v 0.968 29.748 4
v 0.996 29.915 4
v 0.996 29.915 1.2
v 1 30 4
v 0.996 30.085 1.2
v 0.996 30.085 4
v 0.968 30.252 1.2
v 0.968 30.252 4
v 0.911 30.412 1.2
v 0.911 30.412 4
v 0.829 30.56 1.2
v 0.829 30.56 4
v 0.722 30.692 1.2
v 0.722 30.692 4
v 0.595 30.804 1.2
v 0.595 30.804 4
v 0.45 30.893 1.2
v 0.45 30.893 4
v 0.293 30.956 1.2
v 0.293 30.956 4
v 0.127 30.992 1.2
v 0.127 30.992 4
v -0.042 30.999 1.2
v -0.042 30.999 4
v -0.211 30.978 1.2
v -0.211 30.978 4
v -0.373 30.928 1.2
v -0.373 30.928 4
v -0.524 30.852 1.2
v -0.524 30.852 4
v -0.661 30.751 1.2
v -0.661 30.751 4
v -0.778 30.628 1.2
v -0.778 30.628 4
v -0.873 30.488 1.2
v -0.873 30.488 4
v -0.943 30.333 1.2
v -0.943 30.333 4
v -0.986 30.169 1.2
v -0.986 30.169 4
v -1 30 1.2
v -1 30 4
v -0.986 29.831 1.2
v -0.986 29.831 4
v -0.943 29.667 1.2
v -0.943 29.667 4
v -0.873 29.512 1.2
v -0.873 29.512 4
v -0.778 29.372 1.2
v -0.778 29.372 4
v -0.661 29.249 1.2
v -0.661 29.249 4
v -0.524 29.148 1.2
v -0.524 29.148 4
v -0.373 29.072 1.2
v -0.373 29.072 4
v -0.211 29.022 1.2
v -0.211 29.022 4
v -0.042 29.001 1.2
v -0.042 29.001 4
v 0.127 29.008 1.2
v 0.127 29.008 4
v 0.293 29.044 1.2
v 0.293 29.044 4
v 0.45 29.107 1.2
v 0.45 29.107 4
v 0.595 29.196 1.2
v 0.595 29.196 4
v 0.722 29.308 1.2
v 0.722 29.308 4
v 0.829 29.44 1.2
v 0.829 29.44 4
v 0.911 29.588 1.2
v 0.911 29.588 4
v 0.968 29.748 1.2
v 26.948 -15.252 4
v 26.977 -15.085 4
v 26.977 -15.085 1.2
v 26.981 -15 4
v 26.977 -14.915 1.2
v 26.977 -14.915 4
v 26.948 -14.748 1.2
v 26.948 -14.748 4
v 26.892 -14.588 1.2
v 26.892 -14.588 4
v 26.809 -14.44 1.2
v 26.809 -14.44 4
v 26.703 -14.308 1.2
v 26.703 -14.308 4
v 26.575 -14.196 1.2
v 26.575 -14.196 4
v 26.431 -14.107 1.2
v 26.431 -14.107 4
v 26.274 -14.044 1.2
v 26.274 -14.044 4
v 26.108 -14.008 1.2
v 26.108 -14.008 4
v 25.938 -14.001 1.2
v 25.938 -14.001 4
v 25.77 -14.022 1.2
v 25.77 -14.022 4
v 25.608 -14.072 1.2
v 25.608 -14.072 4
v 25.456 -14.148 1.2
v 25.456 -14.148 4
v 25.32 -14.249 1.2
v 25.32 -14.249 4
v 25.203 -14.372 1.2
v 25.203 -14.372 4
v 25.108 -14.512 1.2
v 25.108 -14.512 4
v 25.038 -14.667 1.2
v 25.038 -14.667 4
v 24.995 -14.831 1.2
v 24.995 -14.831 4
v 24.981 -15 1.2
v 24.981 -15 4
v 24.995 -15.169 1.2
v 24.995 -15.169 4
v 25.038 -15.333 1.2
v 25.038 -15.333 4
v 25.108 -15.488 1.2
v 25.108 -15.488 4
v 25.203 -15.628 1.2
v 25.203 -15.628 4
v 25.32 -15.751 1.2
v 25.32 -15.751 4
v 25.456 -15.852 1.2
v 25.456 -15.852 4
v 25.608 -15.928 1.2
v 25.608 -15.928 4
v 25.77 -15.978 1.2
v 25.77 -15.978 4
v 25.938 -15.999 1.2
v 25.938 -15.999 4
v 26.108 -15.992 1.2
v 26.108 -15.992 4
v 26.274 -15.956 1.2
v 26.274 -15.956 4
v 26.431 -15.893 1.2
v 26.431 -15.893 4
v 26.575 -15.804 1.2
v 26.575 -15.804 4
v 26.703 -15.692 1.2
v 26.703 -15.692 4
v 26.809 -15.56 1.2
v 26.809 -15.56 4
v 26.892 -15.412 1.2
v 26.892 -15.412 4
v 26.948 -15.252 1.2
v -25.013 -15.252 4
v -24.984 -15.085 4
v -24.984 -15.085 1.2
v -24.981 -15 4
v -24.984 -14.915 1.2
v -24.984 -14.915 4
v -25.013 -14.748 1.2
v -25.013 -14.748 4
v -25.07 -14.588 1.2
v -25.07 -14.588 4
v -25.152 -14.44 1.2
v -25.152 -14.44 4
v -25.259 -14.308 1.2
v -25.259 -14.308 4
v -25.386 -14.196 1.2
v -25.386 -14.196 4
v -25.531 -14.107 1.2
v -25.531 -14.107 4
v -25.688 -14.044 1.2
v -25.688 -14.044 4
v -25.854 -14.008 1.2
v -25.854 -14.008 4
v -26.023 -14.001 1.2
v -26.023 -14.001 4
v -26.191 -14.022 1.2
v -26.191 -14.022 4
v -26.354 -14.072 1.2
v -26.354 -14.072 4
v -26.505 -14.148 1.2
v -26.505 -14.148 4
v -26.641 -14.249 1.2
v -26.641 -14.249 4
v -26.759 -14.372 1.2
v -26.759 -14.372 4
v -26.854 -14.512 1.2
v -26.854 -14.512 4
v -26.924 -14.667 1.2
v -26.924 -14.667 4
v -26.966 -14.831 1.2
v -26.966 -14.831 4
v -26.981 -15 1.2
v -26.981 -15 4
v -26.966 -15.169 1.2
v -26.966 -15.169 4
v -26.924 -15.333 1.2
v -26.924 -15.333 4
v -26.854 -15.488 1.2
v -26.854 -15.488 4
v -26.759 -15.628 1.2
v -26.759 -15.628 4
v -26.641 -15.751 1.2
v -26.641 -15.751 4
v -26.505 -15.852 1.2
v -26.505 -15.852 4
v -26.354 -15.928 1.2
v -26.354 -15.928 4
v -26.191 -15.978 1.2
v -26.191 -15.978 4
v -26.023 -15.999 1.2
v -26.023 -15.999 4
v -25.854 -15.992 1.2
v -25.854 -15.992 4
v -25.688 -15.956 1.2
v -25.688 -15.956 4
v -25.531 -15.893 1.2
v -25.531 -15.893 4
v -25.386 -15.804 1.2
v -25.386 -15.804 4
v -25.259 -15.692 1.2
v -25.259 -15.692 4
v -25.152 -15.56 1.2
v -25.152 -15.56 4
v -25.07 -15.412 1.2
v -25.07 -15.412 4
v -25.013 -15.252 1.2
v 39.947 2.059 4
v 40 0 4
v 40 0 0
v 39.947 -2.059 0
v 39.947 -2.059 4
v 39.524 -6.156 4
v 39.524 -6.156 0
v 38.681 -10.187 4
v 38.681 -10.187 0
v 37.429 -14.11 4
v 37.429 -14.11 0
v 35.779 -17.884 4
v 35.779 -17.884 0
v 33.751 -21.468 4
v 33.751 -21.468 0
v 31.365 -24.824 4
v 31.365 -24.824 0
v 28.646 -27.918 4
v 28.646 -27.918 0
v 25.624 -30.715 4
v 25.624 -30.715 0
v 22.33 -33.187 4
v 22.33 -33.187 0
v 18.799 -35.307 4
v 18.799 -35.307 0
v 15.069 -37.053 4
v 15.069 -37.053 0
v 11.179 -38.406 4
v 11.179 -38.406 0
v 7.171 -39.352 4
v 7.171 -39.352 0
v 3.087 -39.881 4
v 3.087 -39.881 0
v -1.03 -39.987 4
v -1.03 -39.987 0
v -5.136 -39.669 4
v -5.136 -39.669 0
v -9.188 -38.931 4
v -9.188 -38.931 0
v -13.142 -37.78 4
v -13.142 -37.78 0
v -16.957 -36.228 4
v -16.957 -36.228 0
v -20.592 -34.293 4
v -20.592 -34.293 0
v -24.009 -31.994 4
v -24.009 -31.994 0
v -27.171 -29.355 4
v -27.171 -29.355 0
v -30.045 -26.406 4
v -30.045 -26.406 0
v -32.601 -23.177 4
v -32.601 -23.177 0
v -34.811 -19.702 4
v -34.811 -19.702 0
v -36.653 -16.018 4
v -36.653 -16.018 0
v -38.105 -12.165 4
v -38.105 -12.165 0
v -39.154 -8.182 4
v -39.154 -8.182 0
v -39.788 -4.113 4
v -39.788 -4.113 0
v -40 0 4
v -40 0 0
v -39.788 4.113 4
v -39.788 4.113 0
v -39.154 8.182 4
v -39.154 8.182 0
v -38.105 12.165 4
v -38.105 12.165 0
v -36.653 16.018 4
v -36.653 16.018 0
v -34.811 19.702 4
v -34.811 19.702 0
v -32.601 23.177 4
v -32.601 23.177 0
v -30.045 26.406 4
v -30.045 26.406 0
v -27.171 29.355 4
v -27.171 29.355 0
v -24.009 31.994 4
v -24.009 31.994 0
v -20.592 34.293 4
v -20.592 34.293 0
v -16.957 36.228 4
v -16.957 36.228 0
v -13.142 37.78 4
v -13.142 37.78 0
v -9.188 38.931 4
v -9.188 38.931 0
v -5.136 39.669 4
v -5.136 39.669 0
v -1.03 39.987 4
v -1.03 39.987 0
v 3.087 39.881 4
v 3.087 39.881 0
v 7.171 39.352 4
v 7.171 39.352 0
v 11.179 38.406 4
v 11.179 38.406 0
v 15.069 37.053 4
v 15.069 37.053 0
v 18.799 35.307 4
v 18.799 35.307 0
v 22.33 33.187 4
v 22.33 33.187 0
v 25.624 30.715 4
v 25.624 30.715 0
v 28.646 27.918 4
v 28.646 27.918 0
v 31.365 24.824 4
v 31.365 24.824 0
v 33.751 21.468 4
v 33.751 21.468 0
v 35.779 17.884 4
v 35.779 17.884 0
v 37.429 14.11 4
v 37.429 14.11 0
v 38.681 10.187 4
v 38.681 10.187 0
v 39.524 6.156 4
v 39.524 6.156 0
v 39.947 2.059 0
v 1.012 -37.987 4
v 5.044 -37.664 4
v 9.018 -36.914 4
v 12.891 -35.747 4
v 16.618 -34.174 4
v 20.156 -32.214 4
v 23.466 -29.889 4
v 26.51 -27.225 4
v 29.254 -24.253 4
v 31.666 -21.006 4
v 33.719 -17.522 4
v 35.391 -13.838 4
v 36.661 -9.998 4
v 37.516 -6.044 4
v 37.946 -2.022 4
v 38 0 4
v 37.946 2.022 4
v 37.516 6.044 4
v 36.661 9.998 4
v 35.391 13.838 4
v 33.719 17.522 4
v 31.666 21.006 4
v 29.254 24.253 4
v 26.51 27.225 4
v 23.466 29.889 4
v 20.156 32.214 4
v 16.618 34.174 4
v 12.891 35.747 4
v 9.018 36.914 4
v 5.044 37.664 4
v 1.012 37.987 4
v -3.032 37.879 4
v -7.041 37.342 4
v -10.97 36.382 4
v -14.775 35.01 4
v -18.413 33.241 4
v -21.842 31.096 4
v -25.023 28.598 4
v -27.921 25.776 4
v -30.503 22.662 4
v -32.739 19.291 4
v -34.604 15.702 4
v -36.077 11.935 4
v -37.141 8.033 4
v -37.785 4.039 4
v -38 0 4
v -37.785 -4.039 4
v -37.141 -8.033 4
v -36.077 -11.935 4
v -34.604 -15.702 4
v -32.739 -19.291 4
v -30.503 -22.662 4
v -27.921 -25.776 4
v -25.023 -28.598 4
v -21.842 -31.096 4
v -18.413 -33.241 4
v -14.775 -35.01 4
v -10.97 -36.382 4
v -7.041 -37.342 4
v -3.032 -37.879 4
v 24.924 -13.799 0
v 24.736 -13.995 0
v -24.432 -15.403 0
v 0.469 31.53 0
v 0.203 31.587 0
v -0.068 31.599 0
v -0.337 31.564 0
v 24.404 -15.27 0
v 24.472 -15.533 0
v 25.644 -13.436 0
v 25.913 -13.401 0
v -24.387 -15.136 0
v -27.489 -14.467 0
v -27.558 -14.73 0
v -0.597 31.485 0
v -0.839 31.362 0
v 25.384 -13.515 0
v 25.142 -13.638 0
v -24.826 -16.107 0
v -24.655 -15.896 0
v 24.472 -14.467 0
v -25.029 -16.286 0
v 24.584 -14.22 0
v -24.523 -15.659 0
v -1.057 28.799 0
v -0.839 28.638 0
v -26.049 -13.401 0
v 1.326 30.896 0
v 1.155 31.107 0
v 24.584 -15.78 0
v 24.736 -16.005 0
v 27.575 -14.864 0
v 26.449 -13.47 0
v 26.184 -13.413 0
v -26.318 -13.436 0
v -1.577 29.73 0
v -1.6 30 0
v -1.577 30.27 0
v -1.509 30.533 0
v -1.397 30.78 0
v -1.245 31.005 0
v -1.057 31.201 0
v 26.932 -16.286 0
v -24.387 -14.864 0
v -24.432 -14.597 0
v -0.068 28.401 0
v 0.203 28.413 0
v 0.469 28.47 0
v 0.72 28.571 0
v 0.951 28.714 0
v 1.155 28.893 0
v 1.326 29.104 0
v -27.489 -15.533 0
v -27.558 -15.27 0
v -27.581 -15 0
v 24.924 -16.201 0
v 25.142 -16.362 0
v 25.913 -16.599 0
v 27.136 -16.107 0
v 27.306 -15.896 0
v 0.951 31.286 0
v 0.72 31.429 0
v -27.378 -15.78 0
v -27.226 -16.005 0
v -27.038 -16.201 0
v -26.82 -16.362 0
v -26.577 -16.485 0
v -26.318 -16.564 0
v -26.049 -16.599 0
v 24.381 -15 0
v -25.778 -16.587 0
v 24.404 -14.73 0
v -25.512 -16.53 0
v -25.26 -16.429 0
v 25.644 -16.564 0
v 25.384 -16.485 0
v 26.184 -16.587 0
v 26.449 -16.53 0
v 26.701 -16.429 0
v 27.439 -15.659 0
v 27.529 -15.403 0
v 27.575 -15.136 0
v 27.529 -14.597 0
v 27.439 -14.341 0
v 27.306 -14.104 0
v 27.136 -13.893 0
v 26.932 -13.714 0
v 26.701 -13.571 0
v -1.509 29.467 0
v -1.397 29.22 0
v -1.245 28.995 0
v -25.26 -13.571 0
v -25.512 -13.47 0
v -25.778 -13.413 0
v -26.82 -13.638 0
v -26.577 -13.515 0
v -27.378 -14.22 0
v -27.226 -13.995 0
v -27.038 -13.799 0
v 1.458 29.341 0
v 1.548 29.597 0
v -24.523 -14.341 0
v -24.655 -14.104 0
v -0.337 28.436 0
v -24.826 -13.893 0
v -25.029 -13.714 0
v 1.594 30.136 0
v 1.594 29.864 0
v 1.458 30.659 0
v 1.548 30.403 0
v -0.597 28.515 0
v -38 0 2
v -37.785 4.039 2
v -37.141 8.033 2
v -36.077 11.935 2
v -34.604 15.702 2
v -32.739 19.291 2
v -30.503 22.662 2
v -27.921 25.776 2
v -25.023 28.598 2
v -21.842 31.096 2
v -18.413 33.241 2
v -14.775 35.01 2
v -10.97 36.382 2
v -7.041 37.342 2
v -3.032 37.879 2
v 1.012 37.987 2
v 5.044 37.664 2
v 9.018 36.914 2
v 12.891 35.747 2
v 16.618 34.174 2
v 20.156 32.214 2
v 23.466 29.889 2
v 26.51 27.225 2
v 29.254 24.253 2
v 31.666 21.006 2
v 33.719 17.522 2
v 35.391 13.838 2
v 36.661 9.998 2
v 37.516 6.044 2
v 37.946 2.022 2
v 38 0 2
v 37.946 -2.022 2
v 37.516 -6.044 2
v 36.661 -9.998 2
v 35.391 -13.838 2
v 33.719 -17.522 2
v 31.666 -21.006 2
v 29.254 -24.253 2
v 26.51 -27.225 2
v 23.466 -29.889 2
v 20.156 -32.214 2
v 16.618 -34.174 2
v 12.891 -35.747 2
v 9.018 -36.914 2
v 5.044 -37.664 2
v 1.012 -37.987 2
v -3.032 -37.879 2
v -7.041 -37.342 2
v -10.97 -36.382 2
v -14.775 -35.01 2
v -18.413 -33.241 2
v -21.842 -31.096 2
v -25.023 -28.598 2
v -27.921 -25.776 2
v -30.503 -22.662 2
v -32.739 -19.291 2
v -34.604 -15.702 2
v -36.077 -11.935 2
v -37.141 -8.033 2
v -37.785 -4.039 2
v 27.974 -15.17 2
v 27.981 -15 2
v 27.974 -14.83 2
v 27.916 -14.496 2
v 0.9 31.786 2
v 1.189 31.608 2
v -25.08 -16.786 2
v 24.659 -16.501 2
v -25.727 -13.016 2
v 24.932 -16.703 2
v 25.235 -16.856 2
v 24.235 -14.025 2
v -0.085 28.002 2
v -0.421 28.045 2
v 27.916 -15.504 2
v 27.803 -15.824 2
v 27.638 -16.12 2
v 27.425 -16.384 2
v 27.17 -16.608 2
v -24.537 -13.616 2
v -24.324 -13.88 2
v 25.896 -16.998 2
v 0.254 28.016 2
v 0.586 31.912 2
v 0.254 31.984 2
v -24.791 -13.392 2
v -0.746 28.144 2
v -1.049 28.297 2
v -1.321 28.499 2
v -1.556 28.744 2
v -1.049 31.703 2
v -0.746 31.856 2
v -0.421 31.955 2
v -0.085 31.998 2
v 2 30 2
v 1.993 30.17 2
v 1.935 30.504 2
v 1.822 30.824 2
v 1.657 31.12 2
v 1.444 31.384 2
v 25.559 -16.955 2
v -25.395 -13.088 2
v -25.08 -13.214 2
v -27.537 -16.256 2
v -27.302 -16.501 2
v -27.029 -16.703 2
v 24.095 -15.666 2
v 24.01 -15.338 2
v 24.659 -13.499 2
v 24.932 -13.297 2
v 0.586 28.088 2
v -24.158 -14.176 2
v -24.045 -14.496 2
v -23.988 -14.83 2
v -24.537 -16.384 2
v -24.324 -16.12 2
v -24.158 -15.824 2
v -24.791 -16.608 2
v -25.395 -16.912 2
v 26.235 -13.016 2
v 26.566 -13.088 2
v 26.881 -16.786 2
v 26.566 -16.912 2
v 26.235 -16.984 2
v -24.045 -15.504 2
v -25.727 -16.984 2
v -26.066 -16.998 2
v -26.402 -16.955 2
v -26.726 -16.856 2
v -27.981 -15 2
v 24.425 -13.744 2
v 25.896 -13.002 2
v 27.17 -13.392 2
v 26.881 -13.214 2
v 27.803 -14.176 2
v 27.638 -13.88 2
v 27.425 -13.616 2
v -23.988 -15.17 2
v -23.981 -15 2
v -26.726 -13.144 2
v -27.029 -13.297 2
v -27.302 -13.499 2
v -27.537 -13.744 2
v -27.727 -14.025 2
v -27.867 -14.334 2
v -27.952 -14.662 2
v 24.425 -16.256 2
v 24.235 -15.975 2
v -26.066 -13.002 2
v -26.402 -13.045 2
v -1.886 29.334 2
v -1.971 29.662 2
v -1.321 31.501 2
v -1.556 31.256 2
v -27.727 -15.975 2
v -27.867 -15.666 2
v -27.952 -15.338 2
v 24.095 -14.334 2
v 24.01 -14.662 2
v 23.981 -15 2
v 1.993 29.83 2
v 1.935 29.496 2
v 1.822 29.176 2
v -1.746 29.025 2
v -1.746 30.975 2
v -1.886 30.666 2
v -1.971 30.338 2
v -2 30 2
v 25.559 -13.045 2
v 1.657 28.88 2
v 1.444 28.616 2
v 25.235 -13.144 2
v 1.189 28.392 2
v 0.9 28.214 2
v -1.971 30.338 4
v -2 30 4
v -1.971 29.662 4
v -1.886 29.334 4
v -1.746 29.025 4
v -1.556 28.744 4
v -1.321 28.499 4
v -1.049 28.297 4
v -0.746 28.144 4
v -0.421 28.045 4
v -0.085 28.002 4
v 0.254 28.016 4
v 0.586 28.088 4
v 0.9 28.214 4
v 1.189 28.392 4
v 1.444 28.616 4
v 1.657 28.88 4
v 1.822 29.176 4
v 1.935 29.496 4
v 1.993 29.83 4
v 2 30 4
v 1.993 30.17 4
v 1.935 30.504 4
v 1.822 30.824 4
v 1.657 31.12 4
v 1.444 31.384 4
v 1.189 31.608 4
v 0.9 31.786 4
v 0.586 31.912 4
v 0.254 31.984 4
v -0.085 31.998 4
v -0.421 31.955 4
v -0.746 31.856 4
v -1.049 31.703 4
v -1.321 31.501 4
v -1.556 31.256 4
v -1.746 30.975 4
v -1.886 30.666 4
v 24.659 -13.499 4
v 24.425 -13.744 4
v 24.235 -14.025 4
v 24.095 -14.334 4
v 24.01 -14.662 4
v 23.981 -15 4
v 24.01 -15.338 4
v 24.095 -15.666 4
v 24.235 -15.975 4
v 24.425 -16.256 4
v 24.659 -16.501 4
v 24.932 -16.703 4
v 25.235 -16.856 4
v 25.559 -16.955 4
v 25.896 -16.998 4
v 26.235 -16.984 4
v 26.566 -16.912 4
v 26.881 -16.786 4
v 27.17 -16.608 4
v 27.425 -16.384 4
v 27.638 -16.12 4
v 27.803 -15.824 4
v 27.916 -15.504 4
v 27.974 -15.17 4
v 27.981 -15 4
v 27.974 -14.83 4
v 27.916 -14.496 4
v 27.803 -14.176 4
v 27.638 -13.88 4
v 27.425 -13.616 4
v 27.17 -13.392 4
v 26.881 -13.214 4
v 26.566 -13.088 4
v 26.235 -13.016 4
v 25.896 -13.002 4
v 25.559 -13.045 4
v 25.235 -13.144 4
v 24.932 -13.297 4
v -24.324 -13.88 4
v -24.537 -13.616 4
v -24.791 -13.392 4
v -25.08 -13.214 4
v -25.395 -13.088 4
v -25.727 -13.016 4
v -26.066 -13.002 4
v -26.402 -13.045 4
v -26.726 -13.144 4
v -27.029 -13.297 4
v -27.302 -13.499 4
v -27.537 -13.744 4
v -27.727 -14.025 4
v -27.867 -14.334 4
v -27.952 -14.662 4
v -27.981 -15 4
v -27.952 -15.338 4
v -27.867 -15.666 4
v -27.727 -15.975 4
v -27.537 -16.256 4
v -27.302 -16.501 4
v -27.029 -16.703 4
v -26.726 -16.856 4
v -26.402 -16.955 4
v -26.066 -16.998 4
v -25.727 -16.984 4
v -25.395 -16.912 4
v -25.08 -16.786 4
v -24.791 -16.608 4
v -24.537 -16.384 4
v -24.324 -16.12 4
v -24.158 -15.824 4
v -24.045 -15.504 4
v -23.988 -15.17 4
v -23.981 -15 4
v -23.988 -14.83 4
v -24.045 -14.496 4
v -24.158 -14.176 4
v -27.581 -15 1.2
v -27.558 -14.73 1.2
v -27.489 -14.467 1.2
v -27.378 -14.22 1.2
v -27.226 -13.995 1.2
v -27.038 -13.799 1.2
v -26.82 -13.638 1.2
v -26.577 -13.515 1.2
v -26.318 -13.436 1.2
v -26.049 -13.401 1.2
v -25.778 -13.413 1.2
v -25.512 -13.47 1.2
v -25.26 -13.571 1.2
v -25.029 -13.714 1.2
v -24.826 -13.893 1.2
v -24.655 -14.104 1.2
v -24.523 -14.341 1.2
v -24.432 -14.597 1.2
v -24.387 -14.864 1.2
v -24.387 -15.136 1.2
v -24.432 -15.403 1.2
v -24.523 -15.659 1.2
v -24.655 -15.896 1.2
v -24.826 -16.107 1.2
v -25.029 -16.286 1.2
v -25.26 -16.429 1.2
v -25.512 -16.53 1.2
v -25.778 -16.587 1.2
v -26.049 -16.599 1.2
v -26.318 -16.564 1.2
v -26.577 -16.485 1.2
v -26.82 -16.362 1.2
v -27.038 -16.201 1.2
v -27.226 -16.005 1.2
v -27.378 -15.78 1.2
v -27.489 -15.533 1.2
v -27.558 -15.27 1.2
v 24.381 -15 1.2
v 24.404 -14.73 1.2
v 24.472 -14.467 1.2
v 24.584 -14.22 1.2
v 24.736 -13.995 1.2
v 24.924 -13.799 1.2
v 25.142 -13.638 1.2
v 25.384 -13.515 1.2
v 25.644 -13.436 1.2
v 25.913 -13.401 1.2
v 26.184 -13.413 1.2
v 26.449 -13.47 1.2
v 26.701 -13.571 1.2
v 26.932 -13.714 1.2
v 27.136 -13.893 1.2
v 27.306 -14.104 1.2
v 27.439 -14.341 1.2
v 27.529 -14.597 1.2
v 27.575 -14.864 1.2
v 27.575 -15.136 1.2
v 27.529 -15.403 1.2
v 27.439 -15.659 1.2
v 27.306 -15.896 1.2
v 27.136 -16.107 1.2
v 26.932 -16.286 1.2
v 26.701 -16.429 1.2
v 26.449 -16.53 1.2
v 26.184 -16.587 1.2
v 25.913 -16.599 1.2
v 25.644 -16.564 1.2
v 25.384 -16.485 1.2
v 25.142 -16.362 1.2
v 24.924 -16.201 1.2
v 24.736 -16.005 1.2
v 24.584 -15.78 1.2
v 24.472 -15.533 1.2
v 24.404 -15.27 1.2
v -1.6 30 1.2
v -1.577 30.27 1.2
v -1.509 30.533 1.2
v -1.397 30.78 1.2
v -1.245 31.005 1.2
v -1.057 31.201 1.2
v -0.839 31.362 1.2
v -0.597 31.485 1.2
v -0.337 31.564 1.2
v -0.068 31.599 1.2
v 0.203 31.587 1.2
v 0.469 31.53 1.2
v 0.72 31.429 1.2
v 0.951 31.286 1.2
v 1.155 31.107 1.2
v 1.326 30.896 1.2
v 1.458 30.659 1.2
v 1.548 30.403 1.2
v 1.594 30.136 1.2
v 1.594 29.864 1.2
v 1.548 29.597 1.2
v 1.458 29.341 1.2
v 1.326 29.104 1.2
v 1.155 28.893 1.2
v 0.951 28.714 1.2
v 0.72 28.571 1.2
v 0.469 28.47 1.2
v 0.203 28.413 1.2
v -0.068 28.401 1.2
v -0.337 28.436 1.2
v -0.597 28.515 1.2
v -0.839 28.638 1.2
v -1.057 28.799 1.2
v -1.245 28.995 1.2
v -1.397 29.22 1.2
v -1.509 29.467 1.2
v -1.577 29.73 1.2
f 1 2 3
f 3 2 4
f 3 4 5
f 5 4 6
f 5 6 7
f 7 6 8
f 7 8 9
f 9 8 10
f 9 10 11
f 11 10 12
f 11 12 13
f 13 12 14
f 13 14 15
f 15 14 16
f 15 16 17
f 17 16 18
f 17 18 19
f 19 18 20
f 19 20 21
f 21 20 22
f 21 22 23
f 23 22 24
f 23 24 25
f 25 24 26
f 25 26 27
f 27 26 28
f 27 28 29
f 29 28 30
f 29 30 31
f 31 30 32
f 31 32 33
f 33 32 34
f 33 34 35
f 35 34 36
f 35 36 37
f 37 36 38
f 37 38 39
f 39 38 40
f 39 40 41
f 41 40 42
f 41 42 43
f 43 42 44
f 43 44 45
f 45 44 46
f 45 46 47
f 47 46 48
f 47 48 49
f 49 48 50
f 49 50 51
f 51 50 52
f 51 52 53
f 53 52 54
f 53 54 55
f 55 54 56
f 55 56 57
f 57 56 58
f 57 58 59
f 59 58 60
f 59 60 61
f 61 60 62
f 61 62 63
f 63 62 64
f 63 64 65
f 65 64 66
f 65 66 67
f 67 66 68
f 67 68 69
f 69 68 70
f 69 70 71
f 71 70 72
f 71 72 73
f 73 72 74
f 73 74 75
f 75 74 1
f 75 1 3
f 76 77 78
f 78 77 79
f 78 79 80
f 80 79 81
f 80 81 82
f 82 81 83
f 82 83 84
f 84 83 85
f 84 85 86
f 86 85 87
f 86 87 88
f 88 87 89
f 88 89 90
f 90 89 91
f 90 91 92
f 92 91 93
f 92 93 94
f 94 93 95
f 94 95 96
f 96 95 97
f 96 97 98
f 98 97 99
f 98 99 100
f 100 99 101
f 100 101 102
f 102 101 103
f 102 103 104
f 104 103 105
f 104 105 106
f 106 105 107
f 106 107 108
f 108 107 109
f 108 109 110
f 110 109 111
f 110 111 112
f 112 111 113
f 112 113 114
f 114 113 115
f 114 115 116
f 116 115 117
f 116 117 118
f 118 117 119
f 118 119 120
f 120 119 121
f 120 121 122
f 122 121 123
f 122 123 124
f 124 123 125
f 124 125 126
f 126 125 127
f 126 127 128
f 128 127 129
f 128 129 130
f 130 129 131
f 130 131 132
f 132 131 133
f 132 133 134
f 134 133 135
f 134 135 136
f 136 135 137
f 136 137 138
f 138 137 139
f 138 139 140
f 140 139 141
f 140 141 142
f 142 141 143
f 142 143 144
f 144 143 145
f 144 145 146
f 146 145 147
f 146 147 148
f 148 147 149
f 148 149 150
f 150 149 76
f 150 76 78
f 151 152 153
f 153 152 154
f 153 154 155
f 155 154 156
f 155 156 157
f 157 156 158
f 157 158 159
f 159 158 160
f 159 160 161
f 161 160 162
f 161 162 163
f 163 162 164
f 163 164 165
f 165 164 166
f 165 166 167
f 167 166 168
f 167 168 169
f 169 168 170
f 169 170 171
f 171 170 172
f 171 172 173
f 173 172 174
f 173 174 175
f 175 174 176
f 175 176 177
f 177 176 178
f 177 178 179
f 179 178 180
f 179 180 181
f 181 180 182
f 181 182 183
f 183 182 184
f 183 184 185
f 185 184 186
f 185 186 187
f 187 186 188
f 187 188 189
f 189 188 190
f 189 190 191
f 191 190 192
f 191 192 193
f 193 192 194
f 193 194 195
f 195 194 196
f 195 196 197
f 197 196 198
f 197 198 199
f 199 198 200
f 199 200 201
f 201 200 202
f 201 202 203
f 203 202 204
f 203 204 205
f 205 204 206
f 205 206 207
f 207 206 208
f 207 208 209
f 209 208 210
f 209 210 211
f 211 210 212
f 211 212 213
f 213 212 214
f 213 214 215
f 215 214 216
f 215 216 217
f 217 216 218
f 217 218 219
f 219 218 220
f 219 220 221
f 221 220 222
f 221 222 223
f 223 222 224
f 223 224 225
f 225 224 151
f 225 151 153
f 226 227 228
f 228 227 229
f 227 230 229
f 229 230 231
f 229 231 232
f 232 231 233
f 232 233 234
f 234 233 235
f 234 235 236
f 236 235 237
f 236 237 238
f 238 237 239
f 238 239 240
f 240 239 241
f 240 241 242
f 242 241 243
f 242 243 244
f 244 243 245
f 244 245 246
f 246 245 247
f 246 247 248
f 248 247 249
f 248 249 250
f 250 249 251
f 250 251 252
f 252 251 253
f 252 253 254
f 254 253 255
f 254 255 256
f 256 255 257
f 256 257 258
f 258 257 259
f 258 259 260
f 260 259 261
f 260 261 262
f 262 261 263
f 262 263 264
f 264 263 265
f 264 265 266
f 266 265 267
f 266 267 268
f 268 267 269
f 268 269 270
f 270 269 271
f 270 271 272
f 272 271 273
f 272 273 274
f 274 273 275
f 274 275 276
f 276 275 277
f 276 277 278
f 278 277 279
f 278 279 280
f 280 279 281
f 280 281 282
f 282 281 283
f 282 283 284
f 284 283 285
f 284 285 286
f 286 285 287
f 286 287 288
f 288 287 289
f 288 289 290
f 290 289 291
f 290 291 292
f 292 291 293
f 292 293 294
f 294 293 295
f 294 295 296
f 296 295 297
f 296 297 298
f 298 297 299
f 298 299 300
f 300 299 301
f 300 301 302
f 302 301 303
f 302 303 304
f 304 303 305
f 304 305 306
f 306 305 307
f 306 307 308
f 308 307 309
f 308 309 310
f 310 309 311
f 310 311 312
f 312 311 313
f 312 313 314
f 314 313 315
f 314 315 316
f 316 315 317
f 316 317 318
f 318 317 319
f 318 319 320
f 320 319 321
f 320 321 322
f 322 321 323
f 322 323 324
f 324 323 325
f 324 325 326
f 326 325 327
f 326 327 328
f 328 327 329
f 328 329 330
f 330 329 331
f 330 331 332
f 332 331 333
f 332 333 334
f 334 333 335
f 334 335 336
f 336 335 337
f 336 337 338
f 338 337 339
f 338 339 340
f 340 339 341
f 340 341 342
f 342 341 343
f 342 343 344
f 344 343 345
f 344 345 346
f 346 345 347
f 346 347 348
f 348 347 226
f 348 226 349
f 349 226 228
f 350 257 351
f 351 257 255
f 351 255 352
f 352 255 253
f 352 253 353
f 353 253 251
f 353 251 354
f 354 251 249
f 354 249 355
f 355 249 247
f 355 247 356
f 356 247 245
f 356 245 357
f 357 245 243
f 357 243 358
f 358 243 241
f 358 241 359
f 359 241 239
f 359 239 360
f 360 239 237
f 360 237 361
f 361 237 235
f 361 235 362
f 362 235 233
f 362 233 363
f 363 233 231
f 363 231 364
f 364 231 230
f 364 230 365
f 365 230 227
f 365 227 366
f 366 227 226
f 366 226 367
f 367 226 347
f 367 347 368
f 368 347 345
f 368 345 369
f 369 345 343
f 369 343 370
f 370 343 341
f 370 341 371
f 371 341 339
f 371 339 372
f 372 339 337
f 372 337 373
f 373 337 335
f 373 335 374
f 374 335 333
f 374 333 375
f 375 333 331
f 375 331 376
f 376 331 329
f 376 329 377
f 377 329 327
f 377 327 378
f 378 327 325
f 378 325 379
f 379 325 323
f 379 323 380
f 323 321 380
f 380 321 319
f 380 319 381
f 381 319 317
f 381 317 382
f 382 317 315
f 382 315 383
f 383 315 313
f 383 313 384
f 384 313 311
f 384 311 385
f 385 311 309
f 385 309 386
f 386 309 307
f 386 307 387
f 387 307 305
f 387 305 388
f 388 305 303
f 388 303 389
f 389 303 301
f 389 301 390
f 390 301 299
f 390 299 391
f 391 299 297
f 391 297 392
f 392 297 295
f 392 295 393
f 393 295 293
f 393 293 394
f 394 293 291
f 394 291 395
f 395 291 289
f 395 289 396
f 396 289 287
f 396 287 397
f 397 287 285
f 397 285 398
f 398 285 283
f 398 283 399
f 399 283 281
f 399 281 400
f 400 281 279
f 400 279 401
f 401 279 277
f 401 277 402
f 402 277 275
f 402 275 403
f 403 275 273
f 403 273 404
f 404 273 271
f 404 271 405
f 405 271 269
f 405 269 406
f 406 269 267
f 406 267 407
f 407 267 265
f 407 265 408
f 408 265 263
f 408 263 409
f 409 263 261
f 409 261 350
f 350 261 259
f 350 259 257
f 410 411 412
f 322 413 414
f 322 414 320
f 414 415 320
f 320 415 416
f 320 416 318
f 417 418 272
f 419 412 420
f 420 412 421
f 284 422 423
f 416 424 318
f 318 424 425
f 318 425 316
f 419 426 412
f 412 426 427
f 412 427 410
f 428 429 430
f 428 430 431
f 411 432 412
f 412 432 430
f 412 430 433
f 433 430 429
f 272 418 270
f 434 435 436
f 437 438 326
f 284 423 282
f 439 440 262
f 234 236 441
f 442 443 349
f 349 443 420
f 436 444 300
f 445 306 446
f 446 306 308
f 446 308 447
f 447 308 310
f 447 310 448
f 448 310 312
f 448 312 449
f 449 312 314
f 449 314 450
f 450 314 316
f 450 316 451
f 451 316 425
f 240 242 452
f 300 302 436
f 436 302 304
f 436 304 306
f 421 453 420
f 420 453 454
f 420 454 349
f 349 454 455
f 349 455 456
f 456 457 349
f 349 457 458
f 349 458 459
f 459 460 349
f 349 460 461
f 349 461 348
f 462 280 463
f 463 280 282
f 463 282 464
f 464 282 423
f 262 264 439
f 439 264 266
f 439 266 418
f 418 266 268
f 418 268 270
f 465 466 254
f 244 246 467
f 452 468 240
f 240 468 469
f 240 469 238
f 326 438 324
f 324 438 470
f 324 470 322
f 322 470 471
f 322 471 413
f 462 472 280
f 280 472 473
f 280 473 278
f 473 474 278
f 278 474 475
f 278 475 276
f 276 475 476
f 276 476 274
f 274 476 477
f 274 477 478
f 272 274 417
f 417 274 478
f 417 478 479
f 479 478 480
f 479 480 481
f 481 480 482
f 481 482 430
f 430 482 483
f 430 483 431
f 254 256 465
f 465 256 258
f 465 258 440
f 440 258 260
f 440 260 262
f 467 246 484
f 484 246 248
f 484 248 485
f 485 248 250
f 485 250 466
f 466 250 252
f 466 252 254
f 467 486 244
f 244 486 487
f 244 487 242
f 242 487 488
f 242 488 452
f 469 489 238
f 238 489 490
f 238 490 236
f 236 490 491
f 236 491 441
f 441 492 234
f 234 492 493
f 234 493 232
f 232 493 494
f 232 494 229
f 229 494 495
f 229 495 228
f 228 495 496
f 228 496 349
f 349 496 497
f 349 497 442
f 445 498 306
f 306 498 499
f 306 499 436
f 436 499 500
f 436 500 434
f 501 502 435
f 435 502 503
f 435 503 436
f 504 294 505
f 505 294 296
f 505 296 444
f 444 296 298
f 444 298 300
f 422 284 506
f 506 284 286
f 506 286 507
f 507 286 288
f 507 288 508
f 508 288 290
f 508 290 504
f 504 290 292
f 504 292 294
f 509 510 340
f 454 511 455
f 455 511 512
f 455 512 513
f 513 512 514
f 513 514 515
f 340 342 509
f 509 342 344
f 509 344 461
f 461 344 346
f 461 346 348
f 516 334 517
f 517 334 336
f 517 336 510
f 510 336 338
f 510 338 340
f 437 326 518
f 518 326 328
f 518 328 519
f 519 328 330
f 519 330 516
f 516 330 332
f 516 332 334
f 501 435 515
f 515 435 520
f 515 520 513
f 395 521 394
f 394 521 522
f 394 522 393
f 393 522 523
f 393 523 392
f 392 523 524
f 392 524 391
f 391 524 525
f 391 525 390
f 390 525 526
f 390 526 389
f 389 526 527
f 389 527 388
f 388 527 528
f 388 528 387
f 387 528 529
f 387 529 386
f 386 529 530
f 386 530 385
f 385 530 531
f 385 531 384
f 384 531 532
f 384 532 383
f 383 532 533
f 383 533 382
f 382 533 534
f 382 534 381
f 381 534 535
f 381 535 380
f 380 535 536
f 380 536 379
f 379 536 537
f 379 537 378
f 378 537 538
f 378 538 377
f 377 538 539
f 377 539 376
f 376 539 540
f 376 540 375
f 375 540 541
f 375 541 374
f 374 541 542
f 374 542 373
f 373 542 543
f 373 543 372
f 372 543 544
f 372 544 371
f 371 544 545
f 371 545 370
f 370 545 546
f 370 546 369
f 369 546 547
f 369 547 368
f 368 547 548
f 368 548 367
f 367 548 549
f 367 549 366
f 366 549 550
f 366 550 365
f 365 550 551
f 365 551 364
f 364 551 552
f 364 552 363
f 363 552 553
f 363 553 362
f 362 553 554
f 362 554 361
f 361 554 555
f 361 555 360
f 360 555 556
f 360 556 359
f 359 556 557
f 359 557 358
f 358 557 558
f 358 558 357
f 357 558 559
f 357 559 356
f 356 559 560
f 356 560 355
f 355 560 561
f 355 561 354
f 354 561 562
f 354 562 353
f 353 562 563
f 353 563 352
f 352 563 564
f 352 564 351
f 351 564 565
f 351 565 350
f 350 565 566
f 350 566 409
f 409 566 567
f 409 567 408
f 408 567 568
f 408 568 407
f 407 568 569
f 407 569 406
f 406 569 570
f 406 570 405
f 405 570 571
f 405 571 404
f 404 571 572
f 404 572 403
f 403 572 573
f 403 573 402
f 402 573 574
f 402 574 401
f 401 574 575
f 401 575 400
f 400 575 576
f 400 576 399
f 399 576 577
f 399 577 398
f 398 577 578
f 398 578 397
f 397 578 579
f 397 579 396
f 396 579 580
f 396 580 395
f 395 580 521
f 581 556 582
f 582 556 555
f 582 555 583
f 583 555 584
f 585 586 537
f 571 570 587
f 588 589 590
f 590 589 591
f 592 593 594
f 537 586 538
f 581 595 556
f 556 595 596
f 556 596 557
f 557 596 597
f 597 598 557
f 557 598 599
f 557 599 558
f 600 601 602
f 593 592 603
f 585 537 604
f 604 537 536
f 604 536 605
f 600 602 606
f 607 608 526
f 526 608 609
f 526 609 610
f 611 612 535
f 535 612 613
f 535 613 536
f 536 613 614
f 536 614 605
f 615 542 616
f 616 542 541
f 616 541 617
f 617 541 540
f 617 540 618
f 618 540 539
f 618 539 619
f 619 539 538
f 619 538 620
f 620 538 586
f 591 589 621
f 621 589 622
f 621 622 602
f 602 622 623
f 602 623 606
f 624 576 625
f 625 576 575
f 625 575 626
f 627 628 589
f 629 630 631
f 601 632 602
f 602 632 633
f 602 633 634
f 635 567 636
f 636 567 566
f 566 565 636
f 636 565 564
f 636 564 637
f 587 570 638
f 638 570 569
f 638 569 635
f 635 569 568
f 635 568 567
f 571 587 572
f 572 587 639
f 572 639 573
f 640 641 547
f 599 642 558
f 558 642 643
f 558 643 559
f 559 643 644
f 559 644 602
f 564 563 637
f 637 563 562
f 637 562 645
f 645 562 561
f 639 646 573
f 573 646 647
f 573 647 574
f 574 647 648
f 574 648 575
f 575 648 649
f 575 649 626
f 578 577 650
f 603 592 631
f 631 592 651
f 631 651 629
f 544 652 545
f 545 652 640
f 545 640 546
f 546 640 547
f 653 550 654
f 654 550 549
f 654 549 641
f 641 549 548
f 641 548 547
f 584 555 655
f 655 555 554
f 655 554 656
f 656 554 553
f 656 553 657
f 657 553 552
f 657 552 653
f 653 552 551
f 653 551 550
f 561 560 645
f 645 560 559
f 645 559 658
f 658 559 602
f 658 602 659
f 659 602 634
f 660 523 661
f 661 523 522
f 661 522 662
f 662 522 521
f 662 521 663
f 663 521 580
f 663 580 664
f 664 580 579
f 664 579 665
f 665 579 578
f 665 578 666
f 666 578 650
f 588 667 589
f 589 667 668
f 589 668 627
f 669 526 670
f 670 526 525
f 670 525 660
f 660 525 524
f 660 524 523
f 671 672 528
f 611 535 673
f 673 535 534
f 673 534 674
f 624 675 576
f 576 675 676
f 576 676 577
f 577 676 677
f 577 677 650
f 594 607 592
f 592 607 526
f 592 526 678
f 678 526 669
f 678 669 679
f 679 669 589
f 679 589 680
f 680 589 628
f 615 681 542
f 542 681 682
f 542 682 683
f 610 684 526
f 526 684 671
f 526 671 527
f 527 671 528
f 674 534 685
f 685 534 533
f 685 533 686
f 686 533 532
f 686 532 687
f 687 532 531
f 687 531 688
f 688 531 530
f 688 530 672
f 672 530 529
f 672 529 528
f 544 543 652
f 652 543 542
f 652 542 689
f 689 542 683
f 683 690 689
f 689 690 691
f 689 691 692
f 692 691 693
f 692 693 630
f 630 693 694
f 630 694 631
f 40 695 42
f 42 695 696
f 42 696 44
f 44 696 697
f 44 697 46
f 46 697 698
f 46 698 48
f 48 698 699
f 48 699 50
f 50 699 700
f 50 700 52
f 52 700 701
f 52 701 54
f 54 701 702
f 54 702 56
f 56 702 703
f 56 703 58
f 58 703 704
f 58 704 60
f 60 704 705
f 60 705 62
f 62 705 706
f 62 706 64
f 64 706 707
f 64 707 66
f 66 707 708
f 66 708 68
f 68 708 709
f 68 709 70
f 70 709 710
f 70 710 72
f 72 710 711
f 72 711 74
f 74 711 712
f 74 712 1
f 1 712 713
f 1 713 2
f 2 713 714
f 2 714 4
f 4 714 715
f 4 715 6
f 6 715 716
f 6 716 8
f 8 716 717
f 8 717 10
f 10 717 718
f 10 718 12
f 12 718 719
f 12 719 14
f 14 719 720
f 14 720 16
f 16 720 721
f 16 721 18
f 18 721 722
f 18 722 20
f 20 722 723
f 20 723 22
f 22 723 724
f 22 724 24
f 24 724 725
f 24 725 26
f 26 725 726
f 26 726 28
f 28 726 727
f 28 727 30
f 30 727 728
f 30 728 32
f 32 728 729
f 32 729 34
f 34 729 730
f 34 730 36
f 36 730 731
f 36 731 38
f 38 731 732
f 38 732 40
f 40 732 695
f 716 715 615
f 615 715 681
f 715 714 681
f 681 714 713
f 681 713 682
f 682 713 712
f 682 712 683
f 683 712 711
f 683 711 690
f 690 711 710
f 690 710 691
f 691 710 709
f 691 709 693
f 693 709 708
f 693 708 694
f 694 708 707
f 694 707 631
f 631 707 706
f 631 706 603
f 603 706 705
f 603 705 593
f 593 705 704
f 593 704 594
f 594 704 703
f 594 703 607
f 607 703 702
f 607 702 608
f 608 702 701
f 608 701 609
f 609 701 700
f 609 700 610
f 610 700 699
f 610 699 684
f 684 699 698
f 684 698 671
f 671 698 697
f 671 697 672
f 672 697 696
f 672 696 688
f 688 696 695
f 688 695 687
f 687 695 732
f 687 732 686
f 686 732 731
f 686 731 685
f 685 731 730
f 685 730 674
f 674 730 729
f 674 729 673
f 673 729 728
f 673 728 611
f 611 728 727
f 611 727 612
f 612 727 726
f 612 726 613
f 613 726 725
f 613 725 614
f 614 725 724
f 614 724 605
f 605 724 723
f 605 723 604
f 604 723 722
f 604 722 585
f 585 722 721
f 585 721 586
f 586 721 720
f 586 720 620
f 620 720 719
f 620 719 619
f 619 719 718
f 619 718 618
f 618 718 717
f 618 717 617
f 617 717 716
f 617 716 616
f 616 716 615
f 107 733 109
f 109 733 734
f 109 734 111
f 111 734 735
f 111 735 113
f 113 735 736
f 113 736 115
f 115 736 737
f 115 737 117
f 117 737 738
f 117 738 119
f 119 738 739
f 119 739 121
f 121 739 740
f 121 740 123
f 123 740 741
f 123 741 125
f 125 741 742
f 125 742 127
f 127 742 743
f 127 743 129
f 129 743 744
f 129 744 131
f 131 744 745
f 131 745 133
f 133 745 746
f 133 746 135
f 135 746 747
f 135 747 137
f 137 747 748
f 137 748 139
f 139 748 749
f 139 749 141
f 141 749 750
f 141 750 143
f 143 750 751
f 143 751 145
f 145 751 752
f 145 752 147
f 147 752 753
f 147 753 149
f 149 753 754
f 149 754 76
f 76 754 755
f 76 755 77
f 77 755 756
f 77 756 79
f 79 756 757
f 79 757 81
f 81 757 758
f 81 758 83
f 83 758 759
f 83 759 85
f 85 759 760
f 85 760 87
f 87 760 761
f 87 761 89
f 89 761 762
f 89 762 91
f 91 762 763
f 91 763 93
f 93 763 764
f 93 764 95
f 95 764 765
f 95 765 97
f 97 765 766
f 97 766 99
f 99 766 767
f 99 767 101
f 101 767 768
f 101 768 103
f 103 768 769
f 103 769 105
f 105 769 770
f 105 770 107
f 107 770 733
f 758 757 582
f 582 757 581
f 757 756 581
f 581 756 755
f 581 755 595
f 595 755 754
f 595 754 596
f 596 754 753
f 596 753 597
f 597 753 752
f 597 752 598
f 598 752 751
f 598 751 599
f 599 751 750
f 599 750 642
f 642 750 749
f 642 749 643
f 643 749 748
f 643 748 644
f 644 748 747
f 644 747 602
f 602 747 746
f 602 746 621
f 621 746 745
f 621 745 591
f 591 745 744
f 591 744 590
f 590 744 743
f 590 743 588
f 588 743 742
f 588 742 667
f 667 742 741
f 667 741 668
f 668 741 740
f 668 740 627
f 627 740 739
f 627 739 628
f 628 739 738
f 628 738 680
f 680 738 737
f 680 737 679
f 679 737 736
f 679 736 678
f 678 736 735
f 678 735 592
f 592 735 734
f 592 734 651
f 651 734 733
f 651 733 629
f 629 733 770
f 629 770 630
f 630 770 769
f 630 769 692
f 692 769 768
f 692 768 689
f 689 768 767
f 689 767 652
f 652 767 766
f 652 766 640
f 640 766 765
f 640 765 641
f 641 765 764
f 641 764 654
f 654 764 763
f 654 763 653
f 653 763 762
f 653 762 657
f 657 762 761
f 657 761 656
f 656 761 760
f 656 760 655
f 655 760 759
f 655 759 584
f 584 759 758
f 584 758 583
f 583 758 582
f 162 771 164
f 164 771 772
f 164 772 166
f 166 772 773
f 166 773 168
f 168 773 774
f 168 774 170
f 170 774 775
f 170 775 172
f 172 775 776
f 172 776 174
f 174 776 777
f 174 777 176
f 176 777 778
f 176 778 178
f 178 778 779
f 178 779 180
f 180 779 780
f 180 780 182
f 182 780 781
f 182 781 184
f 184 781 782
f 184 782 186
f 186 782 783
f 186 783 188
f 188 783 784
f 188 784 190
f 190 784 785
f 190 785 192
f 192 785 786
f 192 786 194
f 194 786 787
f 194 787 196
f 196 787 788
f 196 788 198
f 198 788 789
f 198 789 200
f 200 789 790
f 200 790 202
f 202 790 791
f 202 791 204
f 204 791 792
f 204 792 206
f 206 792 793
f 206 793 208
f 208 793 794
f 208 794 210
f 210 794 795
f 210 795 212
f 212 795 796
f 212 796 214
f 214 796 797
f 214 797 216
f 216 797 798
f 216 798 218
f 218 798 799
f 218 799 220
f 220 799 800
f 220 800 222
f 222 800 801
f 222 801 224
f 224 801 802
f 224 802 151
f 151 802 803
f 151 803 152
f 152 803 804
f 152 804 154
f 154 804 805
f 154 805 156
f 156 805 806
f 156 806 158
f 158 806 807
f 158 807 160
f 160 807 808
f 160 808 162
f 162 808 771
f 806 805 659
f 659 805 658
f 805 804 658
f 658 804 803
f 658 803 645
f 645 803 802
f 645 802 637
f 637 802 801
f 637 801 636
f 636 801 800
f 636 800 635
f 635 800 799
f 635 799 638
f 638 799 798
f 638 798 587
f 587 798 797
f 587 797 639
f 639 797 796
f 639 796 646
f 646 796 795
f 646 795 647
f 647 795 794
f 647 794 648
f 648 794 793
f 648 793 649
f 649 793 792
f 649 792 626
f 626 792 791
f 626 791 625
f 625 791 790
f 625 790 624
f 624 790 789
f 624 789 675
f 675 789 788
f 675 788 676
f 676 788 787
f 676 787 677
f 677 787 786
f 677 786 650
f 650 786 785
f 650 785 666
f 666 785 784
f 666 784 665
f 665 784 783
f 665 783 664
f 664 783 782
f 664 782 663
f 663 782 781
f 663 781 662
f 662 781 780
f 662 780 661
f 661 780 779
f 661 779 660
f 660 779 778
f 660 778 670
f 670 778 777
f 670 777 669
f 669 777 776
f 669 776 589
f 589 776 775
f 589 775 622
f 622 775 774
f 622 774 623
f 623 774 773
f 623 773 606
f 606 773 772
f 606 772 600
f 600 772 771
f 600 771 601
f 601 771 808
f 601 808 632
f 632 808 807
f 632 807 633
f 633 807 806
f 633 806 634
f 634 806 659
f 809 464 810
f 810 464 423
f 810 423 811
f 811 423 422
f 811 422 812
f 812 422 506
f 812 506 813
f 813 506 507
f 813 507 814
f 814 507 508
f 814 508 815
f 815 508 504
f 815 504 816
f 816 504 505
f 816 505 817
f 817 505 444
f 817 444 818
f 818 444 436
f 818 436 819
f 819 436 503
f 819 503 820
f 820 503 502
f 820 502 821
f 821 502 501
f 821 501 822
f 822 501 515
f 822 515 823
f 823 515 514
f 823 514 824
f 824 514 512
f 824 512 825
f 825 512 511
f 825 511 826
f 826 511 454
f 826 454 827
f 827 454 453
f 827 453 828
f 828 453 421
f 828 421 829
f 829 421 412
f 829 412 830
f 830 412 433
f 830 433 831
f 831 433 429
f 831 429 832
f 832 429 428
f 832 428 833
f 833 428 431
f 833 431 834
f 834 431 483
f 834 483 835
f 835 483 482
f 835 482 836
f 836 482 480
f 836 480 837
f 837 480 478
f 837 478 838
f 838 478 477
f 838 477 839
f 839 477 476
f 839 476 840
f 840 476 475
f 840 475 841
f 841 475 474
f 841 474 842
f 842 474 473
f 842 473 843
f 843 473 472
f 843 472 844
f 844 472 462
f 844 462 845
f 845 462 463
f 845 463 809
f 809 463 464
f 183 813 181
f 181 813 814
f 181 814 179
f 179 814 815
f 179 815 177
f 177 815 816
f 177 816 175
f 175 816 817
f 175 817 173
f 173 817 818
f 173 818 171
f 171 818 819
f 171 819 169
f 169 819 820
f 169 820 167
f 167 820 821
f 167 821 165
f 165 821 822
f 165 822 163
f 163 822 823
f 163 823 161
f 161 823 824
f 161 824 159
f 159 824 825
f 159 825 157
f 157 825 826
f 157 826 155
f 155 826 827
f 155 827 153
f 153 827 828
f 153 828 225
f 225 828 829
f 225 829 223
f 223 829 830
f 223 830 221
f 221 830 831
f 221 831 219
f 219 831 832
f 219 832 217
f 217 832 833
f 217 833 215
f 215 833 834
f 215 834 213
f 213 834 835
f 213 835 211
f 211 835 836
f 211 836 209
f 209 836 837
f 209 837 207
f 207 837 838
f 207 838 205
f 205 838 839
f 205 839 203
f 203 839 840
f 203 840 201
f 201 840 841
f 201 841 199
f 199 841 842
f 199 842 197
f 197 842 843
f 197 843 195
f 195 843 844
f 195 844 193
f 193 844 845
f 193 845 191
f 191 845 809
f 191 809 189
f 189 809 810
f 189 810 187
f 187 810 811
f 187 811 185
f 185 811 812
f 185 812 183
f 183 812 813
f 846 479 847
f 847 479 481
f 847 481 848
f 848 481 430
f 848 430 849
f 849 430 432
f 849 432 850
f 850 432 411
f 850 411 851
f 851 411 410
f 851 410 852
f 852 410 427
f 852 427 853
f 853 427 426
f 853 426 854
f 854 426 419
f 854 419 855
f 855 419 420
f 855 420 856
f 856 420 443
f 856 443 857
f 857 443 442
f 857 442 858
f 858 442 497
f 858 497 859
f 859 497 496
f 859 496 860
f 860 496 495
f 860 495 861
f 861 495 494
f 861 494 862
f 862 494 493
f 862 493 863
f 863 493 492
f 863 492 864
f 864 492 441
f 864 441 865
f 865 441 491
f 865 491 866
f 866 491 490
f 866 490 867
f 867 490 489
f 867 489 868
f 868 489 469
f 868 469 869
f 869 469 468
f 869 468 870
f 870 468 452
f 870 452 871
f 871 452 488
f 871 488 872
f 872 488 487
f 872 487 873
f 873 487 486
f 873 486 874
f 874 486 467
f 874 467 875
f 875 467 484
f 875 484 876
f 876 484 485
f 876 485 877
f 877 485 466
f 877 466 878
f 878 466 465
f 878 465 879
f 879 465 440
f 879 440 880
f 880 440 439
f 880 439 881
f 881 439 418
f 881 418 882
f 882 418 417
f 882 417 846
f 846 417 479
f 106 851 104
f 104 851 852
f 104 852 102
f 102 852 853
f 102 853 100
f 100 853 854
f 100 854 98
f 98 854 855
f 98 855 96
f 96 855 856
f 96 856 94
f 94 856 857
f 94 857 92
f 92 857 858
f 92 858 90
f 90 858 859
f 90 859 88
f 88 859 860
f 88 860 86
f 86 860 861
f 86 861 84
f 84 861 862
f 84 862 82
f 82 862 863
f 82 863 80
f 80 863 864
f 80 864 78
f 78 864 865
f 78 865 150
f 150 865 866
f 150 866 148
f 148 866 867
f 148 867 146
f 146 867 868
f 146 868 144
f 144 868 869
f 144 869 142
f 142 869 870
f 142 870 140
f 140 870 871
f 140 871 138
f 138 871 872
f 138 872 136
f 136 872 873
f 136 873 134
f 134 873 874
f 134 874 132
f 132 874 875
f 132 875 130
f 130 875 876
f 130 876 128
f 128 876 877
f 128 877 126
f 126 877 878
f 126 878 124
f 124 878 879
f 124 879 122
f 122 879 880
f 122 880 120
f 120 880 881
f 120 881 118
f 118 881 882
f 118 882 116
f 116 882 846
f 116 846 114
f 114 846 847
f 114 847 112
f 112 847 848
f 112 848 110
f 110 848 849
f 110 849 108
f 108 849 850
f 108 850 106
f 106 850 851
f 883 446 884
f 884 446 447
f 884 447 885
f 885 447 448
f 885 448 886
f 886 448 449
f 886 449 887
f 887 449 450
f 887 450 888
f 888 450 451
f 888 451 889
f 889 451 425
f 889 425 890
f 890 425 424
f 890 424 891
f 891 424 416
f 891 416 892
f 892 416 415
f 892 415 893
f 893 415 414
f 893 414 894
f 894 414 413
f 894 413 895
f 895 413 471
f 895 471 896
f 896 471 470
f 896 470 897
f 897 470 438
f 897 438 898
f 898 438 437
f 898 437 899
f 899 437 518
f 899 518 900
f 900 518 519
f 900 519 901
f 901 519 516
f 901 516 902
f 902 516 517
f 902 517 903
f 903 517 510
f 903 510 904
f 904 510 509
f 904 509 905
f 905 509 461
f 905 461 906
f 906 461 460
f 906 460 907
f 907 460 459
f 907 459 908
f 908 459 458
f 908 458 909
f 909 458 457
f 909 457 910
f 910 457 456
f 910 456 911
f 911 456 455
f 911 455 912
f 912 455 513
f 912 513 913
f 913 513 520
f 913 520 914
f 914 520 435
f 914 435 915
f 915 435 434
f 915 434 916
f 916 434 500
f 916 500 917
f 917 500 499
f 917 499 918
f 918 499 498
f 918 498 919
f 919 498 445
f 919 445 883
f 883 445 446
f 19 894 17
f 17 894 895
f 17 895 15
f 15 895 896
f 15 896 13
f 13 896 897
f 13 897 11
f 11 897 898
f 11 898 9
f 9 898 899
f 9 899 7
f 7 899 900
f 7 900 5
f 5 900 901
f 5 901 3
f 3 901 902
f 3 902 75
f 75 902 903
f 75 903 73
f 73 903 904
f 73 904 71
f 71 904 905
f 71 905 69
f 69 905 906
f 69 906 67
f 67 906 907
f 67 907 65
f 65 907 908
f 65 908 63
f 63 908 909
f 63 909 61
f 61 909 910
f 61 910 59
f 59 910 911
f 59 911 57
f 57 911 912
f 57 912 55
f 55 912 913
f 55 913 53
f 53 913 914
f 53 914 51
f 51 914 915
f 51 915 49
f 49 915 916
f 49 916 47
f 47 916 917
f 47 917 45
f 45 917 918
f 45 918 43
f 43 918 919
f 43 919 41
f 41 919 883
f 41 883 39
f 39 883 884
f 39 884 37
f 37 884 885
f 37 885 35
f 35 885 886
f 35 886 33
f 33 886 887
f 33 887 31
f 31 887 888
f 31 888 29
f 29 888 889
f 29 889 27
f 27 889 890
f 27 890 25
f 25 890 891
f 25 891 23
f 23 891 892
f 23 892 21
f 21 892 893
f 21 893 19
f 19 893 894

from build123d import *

# Parameters (mm, degrees)
SKETCH_1_R          = 40
EXTRUDE_1_DEPTH     = 4
SHELL_1_T           = -2
SKETCH_2_R          = 2
SKETCH_2_R_2        = 1
EXTRUDE_2_DEPTH     = 2
SKETCH_3_R          = 1
CUT_EXTRUDE_1_DEPTH = 20
SKETCH_4_R          = 1.6
CUT_EXTRUDE_2_DEPTH = 1.2


with BuildPart() as part:
    # 草图1 → 凸台-拉伸1 (new body)
    with BuildSketch(Plane.XY):
        Circle(SKETCH_1_R)
    extrude(amount=EXTRUDE_1_DEPTH)

    # 抽壳1
    shell_1_openings = [part.faces().sort_by_distance(p)[0] for p in [
        (0, 0, 4),
    ]]
    offset(amount=SHELL_1_T, openings=shell_1_openings, kind=Kind.INTERSECTION)

    # 草图2 → 凸台-拉伸2 (add)
    with BuildSketch(Plane.XY.offset(2)):
        with Locations((0, 30)):
            Circle(SKETCH_2_R)
        with Locations((0, 30)):
            Circle(SKETCH_2_R_2, mode=Mode.SUBTRACT)
        with Locations((25.980762114, -15)):
            Circle(SKETCH_2_R)
        with Locations((25.980762114, -15)):
            Circle(SKETCH_2_R_2, mode=Mode.SUBTRACT)
        with Locations((-25.980762114, -15)):
            Circle(SKETCH_2_R)
        with Locations((-25.980762114, -15)):
            Circle(SKETCH_2_R_2, mode=Mode.SUBTRACT)
    extrude(amount=EXTRUDE_2_DEPTH)

    # 草图3 → 切除-拉伸1 (cut)
    with BuildSketch(Plane.XY.offset(4)):
        with Locations((25.980762114, -15)):
            Circle(SKETCH_3_R)
        with Locations((-25.980762114, -15)):
            Circle(SKETCH_3_R)
        with Locations((0, 30)):
            Circle(SKETCH_3_R)
    extrude(amount=-CUT_EXTRUDE_1_DEPTH, mode=Mode.SUBTRACT)

    # 草图4 → 切除-拉伸2 (cut)
    with BuildSketch(Plane(origin=(0, 0, 0), x_dir=(-1, 0, 0), z_dir=(0, 0, -1))):
        with Locations((-25.980762114, -15)):
            Circle(SKETCH_4_R)
        with Locations((0, 30)):
            Circle(SKETCH_4_R)
        with Locations((25.980762114, -15)):
            Circle(SKETCH_4_R)
    extrude(amount=-CUT_EXTRUDE_2_DEPTH, mode=Mode.SUBTRACT)


solid = part.part
